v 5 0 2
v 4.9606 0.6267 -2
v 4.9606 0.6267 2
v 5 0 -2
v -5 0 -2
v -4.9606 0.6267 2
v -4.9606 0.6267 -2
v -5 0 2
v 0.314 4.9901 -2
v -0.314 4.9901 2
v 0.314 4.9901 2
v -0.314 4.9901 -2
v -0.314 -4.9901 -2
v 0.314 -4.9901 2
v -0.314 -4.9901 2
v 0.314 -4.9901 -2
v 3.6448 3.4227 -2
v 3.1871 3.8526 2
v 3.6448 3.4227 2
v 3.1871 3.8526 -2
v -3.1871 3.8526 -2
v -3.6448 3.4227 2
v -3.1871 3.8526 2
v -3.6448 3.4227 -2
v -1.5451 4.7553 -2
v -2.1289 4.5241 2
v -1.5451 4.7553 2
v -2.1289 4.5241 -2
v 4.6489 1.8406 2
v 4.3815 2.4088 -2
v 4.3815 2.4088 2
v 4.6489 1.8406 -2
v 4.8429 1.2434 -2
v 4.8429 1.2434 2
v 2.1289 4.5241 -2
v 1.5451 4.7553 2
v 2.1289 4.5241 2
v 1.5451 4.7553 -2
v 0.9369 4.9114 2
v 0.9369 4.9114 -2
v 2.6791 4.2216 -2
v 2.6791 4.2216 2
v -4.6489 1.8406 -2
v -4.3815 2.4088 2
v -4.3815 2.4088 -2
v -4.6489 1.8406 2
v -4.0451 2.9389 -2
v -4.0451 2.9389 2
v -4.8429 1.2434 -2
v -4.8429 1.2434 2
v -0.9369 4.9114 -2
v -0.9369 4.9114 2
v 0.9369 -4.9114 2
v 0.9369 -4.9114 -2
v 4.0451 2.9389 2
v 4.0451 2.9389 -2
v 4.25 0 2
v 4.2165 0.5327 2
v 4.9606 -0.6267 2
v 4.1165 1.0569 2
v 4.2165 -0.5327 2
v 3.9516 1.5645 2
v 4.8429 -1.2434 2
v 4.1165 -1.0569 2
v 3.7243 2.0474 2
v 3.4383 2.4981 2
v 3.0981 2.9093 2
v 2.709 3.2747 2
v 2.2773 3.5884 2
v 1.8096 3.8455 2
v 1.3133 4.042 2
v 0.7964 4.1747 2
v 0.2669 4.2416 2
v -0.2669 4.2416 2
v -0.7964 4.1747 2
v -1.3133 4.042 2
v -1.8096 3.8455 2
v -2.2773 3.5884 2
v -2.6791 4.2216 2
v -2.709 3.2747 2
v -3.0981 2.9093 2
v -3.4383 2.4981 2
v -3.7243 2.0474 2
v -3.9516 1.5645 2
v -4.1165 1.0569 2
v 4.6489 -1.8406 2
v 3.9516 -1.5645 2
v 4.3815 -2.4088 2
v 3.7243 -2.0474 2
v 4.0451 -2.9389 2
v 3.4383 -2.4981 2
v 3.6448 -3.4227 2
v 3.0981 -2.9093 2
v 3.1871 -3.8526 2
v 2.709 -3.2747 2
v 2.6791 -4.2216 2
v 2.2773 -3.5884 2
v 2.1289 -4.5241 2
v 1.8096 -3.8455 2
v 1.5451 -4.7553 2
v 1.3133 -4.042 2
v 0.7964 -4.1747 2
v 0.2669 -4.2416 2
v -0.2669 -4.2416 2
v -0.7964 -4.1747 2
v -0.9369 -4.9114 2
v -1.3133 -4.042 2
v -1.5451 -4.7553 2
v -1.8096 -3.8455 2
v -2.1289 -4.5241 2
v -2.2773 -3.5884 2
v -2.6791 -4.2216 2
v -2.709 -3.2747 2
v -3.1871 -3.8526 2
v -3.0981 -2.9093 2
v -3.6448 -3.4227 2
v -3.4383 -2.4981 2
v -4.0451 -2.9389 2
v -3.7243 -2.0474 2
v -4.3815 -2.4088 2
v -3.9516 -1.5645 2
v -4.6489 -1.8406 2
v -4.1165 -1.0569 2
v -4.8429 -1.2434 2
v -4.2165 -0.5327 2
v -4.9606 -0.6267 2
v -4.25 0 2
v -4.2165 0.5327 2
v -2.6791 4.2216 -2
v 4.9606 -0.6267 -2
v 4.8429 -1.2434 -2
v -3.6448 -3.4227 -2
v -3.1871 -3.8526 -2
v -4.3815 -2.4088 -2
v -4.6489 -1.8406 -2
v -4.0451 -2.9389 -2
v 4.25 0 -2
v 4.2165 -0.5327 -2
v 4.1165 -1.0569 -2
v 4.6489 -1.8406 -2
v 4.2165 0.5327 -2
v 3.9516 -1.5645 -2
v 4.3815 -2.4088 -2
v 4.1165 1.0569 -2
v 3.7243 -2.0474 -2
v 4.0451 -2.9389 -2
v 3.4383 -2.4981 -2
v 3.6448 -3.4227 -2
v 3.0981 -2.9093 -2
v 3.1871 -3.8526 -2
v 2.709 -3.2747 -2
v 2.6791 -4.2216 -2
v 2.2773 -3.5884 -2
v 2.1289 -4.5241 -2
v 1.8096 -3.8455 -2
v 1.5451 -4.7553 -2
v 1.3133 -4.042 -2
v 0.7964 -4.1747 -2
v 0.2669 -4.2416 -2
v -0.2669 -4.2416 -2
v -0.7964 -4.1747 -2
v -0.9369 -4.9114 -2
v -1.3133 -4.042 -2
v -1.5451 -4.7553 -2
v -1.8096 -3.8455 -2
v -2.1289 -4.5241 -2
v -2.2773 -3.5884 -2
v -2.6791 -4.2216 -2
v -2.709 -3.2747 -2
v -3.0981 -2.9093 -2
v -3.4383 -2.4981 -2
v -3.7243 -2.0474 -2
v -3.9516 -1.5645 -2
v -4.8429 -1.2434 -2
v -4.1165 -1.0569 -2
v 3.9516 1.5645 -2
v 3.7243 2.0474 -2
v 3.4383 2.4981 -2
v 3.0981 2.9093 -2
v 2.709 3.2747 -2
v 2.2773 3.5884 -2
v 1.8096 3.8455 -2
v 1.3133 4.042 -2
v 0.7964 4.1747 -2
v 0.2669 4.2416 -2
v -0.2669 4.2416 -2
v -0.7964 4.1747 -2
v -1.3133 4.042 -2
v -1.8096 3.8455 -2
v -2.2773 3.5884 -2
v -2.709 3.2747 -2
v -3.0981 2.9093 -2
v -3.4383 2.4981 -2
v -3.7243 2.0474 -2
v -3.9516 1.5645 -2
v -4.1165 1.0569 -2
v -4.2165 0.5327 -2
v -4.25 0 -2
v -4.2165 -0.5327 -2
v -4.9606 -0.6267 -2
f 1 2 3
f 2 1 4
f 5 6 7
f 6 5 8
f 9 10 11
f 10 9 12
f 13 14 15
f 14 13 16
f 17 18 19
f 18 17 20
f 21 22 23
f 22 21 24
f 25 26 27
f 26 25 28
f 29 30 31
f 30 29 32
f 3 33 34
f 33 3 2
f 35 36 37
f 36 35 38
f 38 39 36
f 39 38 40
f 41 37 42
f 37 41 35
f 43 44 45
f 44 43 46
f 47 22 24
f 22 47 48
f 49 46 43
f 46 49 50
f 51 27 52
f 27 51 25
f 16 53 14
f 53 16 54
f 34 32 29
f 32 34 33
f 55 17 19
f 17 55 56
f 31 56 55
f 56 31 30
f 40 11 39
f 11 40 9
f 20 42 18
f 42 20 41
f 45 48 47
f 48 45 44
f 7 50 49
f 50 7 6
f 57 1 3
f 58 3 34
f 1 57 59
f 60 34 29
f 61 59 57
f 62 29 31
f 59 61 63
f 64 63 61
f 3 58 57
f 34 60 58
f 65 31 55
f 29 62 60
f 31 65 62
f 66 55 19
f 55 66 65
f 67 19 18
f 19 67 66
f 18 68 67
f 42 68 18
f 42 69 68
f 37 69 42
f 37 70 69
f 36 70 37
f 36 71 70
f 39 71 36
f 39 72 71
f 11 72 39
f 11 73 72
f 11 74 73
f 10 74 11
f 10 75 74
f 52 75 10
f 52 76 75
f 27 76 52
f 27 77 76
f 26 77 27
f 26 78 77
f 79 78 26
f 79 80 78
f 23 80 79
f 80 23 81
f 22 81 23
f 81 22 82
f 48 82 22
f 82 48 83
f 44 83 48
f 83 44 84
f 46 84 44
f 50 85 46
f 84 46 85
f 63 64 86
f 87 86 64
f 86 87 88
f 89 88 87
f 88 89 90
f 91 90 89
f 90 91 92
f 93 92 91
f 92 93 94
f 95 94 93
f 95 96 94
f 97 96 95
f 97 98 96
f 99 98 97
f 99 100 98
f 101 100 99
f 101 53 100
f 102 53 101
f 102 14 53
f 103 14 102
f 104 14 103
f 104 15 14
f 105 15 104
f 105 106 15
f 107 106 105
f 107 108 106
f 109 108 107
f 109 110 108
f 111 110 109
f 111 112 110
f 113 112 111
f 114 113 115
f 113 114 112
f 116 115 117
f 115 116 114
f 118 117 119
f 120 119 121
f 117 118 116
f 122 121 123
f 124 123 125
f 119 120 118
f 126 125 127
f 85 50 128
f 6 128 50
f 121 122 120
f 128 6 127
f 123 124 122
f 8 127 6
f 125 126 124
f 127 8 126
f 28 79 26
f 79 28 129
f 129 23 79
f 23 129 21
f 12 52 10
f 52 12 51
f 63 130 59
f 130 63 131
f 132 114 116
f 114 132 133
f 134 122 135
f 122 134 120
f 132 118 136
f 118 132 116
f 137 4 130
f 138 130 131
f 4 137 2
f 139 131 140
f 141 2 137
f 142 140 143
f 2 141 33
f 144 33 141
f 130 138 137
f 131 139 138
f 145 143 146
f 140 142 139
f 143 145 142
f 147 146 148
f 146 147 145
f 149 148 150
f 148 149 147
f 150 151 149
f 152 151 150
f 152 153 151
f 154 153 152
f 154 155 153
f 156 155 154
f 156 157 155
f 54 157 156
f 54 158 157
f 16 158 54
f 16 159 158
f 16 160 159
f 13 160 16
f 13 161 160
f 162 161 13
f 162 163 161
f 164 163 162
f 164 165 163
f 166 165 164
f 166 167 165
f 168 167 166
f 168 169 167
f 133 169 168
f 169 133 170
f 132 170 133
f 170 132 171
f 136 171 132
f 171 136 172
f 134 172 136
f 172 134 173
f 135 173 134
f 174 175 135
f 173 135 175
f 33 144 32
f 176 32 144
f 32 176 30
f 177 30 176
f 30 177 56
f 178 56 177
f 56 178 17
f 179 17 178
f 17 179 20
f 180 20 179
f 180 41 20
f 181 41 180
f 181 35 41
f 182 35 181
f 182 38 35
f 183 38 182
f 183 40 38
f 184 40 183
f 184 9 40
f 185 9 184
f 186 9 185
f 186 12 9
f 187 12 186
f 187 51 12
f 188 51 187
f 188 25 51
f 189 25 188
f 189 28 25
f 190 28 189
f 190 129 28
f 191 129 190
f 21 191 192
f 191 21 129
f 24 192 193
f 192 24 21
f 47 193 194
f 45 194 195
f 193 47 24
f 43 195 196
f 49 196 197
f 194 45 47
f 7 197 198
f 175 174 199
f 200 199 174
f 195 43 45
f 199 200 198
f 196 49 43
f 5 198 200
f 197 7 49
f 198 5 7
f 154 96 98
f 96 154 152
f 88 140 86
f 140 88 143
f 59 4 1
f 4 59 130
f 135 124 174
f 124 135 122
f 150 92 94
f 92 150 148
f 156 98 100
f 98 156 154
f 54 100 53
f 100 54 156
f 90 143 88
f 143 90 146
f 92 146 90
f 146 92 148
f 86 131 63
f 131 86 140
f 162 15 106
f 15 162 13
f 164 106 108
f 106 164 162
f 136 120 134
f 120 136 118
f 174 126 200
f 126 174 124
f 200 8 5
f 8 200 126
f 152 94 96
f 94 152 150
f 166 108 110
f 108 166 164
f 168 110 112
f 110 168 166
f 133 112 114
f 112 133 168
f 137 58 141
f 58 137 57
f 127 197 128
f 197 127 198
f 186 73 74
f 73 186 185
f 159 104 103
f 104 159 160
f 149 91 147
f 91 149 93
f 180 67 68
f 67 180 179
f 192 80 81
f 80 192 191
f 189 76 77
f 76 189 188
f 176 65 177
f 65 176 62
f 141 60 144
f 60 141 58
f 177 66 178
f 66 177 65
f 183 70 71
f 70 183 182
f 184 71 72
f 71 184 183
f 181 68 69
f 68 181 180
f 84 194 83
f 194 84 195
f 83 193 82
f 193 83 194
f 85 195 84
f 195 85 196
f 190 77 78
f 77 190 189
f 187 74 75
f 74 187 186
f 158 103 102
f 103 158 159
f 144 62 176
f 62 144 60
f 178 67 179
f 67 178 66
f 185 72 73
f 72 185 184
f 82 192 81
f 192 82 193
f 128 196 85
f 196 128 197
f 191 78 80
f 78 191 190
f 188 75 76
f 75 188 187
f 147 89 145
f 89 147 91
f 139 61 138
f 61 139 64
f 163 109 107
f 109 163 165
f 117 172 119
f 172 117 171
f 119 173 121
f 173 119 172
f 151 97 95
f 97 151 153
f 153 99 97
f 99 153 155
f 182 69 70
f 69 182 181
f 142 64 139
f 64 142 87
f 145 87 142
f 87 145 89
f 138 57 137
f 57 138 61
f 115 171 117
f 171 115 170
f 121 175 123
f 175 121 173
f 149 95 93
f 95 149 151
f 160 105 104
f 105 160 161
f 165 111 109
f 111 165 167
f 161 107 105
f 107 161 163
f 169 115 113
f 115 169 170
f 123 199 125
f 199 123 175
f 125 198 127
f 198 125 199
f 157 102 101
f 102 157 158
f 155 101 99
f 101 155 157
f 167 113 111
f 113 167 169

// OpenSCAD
$fn = 50;


difference() {
	union() {
		translate(v = [0, 0, -2.0000000000]) {
			cylinder(h = 4, r = 5.0000000000);
		}
	}
	union() {
		translate(v = [0, 0, -100.0000000000]) {
			cylinder(h = 200, r = 4.2500000000);
		}
	}
}
